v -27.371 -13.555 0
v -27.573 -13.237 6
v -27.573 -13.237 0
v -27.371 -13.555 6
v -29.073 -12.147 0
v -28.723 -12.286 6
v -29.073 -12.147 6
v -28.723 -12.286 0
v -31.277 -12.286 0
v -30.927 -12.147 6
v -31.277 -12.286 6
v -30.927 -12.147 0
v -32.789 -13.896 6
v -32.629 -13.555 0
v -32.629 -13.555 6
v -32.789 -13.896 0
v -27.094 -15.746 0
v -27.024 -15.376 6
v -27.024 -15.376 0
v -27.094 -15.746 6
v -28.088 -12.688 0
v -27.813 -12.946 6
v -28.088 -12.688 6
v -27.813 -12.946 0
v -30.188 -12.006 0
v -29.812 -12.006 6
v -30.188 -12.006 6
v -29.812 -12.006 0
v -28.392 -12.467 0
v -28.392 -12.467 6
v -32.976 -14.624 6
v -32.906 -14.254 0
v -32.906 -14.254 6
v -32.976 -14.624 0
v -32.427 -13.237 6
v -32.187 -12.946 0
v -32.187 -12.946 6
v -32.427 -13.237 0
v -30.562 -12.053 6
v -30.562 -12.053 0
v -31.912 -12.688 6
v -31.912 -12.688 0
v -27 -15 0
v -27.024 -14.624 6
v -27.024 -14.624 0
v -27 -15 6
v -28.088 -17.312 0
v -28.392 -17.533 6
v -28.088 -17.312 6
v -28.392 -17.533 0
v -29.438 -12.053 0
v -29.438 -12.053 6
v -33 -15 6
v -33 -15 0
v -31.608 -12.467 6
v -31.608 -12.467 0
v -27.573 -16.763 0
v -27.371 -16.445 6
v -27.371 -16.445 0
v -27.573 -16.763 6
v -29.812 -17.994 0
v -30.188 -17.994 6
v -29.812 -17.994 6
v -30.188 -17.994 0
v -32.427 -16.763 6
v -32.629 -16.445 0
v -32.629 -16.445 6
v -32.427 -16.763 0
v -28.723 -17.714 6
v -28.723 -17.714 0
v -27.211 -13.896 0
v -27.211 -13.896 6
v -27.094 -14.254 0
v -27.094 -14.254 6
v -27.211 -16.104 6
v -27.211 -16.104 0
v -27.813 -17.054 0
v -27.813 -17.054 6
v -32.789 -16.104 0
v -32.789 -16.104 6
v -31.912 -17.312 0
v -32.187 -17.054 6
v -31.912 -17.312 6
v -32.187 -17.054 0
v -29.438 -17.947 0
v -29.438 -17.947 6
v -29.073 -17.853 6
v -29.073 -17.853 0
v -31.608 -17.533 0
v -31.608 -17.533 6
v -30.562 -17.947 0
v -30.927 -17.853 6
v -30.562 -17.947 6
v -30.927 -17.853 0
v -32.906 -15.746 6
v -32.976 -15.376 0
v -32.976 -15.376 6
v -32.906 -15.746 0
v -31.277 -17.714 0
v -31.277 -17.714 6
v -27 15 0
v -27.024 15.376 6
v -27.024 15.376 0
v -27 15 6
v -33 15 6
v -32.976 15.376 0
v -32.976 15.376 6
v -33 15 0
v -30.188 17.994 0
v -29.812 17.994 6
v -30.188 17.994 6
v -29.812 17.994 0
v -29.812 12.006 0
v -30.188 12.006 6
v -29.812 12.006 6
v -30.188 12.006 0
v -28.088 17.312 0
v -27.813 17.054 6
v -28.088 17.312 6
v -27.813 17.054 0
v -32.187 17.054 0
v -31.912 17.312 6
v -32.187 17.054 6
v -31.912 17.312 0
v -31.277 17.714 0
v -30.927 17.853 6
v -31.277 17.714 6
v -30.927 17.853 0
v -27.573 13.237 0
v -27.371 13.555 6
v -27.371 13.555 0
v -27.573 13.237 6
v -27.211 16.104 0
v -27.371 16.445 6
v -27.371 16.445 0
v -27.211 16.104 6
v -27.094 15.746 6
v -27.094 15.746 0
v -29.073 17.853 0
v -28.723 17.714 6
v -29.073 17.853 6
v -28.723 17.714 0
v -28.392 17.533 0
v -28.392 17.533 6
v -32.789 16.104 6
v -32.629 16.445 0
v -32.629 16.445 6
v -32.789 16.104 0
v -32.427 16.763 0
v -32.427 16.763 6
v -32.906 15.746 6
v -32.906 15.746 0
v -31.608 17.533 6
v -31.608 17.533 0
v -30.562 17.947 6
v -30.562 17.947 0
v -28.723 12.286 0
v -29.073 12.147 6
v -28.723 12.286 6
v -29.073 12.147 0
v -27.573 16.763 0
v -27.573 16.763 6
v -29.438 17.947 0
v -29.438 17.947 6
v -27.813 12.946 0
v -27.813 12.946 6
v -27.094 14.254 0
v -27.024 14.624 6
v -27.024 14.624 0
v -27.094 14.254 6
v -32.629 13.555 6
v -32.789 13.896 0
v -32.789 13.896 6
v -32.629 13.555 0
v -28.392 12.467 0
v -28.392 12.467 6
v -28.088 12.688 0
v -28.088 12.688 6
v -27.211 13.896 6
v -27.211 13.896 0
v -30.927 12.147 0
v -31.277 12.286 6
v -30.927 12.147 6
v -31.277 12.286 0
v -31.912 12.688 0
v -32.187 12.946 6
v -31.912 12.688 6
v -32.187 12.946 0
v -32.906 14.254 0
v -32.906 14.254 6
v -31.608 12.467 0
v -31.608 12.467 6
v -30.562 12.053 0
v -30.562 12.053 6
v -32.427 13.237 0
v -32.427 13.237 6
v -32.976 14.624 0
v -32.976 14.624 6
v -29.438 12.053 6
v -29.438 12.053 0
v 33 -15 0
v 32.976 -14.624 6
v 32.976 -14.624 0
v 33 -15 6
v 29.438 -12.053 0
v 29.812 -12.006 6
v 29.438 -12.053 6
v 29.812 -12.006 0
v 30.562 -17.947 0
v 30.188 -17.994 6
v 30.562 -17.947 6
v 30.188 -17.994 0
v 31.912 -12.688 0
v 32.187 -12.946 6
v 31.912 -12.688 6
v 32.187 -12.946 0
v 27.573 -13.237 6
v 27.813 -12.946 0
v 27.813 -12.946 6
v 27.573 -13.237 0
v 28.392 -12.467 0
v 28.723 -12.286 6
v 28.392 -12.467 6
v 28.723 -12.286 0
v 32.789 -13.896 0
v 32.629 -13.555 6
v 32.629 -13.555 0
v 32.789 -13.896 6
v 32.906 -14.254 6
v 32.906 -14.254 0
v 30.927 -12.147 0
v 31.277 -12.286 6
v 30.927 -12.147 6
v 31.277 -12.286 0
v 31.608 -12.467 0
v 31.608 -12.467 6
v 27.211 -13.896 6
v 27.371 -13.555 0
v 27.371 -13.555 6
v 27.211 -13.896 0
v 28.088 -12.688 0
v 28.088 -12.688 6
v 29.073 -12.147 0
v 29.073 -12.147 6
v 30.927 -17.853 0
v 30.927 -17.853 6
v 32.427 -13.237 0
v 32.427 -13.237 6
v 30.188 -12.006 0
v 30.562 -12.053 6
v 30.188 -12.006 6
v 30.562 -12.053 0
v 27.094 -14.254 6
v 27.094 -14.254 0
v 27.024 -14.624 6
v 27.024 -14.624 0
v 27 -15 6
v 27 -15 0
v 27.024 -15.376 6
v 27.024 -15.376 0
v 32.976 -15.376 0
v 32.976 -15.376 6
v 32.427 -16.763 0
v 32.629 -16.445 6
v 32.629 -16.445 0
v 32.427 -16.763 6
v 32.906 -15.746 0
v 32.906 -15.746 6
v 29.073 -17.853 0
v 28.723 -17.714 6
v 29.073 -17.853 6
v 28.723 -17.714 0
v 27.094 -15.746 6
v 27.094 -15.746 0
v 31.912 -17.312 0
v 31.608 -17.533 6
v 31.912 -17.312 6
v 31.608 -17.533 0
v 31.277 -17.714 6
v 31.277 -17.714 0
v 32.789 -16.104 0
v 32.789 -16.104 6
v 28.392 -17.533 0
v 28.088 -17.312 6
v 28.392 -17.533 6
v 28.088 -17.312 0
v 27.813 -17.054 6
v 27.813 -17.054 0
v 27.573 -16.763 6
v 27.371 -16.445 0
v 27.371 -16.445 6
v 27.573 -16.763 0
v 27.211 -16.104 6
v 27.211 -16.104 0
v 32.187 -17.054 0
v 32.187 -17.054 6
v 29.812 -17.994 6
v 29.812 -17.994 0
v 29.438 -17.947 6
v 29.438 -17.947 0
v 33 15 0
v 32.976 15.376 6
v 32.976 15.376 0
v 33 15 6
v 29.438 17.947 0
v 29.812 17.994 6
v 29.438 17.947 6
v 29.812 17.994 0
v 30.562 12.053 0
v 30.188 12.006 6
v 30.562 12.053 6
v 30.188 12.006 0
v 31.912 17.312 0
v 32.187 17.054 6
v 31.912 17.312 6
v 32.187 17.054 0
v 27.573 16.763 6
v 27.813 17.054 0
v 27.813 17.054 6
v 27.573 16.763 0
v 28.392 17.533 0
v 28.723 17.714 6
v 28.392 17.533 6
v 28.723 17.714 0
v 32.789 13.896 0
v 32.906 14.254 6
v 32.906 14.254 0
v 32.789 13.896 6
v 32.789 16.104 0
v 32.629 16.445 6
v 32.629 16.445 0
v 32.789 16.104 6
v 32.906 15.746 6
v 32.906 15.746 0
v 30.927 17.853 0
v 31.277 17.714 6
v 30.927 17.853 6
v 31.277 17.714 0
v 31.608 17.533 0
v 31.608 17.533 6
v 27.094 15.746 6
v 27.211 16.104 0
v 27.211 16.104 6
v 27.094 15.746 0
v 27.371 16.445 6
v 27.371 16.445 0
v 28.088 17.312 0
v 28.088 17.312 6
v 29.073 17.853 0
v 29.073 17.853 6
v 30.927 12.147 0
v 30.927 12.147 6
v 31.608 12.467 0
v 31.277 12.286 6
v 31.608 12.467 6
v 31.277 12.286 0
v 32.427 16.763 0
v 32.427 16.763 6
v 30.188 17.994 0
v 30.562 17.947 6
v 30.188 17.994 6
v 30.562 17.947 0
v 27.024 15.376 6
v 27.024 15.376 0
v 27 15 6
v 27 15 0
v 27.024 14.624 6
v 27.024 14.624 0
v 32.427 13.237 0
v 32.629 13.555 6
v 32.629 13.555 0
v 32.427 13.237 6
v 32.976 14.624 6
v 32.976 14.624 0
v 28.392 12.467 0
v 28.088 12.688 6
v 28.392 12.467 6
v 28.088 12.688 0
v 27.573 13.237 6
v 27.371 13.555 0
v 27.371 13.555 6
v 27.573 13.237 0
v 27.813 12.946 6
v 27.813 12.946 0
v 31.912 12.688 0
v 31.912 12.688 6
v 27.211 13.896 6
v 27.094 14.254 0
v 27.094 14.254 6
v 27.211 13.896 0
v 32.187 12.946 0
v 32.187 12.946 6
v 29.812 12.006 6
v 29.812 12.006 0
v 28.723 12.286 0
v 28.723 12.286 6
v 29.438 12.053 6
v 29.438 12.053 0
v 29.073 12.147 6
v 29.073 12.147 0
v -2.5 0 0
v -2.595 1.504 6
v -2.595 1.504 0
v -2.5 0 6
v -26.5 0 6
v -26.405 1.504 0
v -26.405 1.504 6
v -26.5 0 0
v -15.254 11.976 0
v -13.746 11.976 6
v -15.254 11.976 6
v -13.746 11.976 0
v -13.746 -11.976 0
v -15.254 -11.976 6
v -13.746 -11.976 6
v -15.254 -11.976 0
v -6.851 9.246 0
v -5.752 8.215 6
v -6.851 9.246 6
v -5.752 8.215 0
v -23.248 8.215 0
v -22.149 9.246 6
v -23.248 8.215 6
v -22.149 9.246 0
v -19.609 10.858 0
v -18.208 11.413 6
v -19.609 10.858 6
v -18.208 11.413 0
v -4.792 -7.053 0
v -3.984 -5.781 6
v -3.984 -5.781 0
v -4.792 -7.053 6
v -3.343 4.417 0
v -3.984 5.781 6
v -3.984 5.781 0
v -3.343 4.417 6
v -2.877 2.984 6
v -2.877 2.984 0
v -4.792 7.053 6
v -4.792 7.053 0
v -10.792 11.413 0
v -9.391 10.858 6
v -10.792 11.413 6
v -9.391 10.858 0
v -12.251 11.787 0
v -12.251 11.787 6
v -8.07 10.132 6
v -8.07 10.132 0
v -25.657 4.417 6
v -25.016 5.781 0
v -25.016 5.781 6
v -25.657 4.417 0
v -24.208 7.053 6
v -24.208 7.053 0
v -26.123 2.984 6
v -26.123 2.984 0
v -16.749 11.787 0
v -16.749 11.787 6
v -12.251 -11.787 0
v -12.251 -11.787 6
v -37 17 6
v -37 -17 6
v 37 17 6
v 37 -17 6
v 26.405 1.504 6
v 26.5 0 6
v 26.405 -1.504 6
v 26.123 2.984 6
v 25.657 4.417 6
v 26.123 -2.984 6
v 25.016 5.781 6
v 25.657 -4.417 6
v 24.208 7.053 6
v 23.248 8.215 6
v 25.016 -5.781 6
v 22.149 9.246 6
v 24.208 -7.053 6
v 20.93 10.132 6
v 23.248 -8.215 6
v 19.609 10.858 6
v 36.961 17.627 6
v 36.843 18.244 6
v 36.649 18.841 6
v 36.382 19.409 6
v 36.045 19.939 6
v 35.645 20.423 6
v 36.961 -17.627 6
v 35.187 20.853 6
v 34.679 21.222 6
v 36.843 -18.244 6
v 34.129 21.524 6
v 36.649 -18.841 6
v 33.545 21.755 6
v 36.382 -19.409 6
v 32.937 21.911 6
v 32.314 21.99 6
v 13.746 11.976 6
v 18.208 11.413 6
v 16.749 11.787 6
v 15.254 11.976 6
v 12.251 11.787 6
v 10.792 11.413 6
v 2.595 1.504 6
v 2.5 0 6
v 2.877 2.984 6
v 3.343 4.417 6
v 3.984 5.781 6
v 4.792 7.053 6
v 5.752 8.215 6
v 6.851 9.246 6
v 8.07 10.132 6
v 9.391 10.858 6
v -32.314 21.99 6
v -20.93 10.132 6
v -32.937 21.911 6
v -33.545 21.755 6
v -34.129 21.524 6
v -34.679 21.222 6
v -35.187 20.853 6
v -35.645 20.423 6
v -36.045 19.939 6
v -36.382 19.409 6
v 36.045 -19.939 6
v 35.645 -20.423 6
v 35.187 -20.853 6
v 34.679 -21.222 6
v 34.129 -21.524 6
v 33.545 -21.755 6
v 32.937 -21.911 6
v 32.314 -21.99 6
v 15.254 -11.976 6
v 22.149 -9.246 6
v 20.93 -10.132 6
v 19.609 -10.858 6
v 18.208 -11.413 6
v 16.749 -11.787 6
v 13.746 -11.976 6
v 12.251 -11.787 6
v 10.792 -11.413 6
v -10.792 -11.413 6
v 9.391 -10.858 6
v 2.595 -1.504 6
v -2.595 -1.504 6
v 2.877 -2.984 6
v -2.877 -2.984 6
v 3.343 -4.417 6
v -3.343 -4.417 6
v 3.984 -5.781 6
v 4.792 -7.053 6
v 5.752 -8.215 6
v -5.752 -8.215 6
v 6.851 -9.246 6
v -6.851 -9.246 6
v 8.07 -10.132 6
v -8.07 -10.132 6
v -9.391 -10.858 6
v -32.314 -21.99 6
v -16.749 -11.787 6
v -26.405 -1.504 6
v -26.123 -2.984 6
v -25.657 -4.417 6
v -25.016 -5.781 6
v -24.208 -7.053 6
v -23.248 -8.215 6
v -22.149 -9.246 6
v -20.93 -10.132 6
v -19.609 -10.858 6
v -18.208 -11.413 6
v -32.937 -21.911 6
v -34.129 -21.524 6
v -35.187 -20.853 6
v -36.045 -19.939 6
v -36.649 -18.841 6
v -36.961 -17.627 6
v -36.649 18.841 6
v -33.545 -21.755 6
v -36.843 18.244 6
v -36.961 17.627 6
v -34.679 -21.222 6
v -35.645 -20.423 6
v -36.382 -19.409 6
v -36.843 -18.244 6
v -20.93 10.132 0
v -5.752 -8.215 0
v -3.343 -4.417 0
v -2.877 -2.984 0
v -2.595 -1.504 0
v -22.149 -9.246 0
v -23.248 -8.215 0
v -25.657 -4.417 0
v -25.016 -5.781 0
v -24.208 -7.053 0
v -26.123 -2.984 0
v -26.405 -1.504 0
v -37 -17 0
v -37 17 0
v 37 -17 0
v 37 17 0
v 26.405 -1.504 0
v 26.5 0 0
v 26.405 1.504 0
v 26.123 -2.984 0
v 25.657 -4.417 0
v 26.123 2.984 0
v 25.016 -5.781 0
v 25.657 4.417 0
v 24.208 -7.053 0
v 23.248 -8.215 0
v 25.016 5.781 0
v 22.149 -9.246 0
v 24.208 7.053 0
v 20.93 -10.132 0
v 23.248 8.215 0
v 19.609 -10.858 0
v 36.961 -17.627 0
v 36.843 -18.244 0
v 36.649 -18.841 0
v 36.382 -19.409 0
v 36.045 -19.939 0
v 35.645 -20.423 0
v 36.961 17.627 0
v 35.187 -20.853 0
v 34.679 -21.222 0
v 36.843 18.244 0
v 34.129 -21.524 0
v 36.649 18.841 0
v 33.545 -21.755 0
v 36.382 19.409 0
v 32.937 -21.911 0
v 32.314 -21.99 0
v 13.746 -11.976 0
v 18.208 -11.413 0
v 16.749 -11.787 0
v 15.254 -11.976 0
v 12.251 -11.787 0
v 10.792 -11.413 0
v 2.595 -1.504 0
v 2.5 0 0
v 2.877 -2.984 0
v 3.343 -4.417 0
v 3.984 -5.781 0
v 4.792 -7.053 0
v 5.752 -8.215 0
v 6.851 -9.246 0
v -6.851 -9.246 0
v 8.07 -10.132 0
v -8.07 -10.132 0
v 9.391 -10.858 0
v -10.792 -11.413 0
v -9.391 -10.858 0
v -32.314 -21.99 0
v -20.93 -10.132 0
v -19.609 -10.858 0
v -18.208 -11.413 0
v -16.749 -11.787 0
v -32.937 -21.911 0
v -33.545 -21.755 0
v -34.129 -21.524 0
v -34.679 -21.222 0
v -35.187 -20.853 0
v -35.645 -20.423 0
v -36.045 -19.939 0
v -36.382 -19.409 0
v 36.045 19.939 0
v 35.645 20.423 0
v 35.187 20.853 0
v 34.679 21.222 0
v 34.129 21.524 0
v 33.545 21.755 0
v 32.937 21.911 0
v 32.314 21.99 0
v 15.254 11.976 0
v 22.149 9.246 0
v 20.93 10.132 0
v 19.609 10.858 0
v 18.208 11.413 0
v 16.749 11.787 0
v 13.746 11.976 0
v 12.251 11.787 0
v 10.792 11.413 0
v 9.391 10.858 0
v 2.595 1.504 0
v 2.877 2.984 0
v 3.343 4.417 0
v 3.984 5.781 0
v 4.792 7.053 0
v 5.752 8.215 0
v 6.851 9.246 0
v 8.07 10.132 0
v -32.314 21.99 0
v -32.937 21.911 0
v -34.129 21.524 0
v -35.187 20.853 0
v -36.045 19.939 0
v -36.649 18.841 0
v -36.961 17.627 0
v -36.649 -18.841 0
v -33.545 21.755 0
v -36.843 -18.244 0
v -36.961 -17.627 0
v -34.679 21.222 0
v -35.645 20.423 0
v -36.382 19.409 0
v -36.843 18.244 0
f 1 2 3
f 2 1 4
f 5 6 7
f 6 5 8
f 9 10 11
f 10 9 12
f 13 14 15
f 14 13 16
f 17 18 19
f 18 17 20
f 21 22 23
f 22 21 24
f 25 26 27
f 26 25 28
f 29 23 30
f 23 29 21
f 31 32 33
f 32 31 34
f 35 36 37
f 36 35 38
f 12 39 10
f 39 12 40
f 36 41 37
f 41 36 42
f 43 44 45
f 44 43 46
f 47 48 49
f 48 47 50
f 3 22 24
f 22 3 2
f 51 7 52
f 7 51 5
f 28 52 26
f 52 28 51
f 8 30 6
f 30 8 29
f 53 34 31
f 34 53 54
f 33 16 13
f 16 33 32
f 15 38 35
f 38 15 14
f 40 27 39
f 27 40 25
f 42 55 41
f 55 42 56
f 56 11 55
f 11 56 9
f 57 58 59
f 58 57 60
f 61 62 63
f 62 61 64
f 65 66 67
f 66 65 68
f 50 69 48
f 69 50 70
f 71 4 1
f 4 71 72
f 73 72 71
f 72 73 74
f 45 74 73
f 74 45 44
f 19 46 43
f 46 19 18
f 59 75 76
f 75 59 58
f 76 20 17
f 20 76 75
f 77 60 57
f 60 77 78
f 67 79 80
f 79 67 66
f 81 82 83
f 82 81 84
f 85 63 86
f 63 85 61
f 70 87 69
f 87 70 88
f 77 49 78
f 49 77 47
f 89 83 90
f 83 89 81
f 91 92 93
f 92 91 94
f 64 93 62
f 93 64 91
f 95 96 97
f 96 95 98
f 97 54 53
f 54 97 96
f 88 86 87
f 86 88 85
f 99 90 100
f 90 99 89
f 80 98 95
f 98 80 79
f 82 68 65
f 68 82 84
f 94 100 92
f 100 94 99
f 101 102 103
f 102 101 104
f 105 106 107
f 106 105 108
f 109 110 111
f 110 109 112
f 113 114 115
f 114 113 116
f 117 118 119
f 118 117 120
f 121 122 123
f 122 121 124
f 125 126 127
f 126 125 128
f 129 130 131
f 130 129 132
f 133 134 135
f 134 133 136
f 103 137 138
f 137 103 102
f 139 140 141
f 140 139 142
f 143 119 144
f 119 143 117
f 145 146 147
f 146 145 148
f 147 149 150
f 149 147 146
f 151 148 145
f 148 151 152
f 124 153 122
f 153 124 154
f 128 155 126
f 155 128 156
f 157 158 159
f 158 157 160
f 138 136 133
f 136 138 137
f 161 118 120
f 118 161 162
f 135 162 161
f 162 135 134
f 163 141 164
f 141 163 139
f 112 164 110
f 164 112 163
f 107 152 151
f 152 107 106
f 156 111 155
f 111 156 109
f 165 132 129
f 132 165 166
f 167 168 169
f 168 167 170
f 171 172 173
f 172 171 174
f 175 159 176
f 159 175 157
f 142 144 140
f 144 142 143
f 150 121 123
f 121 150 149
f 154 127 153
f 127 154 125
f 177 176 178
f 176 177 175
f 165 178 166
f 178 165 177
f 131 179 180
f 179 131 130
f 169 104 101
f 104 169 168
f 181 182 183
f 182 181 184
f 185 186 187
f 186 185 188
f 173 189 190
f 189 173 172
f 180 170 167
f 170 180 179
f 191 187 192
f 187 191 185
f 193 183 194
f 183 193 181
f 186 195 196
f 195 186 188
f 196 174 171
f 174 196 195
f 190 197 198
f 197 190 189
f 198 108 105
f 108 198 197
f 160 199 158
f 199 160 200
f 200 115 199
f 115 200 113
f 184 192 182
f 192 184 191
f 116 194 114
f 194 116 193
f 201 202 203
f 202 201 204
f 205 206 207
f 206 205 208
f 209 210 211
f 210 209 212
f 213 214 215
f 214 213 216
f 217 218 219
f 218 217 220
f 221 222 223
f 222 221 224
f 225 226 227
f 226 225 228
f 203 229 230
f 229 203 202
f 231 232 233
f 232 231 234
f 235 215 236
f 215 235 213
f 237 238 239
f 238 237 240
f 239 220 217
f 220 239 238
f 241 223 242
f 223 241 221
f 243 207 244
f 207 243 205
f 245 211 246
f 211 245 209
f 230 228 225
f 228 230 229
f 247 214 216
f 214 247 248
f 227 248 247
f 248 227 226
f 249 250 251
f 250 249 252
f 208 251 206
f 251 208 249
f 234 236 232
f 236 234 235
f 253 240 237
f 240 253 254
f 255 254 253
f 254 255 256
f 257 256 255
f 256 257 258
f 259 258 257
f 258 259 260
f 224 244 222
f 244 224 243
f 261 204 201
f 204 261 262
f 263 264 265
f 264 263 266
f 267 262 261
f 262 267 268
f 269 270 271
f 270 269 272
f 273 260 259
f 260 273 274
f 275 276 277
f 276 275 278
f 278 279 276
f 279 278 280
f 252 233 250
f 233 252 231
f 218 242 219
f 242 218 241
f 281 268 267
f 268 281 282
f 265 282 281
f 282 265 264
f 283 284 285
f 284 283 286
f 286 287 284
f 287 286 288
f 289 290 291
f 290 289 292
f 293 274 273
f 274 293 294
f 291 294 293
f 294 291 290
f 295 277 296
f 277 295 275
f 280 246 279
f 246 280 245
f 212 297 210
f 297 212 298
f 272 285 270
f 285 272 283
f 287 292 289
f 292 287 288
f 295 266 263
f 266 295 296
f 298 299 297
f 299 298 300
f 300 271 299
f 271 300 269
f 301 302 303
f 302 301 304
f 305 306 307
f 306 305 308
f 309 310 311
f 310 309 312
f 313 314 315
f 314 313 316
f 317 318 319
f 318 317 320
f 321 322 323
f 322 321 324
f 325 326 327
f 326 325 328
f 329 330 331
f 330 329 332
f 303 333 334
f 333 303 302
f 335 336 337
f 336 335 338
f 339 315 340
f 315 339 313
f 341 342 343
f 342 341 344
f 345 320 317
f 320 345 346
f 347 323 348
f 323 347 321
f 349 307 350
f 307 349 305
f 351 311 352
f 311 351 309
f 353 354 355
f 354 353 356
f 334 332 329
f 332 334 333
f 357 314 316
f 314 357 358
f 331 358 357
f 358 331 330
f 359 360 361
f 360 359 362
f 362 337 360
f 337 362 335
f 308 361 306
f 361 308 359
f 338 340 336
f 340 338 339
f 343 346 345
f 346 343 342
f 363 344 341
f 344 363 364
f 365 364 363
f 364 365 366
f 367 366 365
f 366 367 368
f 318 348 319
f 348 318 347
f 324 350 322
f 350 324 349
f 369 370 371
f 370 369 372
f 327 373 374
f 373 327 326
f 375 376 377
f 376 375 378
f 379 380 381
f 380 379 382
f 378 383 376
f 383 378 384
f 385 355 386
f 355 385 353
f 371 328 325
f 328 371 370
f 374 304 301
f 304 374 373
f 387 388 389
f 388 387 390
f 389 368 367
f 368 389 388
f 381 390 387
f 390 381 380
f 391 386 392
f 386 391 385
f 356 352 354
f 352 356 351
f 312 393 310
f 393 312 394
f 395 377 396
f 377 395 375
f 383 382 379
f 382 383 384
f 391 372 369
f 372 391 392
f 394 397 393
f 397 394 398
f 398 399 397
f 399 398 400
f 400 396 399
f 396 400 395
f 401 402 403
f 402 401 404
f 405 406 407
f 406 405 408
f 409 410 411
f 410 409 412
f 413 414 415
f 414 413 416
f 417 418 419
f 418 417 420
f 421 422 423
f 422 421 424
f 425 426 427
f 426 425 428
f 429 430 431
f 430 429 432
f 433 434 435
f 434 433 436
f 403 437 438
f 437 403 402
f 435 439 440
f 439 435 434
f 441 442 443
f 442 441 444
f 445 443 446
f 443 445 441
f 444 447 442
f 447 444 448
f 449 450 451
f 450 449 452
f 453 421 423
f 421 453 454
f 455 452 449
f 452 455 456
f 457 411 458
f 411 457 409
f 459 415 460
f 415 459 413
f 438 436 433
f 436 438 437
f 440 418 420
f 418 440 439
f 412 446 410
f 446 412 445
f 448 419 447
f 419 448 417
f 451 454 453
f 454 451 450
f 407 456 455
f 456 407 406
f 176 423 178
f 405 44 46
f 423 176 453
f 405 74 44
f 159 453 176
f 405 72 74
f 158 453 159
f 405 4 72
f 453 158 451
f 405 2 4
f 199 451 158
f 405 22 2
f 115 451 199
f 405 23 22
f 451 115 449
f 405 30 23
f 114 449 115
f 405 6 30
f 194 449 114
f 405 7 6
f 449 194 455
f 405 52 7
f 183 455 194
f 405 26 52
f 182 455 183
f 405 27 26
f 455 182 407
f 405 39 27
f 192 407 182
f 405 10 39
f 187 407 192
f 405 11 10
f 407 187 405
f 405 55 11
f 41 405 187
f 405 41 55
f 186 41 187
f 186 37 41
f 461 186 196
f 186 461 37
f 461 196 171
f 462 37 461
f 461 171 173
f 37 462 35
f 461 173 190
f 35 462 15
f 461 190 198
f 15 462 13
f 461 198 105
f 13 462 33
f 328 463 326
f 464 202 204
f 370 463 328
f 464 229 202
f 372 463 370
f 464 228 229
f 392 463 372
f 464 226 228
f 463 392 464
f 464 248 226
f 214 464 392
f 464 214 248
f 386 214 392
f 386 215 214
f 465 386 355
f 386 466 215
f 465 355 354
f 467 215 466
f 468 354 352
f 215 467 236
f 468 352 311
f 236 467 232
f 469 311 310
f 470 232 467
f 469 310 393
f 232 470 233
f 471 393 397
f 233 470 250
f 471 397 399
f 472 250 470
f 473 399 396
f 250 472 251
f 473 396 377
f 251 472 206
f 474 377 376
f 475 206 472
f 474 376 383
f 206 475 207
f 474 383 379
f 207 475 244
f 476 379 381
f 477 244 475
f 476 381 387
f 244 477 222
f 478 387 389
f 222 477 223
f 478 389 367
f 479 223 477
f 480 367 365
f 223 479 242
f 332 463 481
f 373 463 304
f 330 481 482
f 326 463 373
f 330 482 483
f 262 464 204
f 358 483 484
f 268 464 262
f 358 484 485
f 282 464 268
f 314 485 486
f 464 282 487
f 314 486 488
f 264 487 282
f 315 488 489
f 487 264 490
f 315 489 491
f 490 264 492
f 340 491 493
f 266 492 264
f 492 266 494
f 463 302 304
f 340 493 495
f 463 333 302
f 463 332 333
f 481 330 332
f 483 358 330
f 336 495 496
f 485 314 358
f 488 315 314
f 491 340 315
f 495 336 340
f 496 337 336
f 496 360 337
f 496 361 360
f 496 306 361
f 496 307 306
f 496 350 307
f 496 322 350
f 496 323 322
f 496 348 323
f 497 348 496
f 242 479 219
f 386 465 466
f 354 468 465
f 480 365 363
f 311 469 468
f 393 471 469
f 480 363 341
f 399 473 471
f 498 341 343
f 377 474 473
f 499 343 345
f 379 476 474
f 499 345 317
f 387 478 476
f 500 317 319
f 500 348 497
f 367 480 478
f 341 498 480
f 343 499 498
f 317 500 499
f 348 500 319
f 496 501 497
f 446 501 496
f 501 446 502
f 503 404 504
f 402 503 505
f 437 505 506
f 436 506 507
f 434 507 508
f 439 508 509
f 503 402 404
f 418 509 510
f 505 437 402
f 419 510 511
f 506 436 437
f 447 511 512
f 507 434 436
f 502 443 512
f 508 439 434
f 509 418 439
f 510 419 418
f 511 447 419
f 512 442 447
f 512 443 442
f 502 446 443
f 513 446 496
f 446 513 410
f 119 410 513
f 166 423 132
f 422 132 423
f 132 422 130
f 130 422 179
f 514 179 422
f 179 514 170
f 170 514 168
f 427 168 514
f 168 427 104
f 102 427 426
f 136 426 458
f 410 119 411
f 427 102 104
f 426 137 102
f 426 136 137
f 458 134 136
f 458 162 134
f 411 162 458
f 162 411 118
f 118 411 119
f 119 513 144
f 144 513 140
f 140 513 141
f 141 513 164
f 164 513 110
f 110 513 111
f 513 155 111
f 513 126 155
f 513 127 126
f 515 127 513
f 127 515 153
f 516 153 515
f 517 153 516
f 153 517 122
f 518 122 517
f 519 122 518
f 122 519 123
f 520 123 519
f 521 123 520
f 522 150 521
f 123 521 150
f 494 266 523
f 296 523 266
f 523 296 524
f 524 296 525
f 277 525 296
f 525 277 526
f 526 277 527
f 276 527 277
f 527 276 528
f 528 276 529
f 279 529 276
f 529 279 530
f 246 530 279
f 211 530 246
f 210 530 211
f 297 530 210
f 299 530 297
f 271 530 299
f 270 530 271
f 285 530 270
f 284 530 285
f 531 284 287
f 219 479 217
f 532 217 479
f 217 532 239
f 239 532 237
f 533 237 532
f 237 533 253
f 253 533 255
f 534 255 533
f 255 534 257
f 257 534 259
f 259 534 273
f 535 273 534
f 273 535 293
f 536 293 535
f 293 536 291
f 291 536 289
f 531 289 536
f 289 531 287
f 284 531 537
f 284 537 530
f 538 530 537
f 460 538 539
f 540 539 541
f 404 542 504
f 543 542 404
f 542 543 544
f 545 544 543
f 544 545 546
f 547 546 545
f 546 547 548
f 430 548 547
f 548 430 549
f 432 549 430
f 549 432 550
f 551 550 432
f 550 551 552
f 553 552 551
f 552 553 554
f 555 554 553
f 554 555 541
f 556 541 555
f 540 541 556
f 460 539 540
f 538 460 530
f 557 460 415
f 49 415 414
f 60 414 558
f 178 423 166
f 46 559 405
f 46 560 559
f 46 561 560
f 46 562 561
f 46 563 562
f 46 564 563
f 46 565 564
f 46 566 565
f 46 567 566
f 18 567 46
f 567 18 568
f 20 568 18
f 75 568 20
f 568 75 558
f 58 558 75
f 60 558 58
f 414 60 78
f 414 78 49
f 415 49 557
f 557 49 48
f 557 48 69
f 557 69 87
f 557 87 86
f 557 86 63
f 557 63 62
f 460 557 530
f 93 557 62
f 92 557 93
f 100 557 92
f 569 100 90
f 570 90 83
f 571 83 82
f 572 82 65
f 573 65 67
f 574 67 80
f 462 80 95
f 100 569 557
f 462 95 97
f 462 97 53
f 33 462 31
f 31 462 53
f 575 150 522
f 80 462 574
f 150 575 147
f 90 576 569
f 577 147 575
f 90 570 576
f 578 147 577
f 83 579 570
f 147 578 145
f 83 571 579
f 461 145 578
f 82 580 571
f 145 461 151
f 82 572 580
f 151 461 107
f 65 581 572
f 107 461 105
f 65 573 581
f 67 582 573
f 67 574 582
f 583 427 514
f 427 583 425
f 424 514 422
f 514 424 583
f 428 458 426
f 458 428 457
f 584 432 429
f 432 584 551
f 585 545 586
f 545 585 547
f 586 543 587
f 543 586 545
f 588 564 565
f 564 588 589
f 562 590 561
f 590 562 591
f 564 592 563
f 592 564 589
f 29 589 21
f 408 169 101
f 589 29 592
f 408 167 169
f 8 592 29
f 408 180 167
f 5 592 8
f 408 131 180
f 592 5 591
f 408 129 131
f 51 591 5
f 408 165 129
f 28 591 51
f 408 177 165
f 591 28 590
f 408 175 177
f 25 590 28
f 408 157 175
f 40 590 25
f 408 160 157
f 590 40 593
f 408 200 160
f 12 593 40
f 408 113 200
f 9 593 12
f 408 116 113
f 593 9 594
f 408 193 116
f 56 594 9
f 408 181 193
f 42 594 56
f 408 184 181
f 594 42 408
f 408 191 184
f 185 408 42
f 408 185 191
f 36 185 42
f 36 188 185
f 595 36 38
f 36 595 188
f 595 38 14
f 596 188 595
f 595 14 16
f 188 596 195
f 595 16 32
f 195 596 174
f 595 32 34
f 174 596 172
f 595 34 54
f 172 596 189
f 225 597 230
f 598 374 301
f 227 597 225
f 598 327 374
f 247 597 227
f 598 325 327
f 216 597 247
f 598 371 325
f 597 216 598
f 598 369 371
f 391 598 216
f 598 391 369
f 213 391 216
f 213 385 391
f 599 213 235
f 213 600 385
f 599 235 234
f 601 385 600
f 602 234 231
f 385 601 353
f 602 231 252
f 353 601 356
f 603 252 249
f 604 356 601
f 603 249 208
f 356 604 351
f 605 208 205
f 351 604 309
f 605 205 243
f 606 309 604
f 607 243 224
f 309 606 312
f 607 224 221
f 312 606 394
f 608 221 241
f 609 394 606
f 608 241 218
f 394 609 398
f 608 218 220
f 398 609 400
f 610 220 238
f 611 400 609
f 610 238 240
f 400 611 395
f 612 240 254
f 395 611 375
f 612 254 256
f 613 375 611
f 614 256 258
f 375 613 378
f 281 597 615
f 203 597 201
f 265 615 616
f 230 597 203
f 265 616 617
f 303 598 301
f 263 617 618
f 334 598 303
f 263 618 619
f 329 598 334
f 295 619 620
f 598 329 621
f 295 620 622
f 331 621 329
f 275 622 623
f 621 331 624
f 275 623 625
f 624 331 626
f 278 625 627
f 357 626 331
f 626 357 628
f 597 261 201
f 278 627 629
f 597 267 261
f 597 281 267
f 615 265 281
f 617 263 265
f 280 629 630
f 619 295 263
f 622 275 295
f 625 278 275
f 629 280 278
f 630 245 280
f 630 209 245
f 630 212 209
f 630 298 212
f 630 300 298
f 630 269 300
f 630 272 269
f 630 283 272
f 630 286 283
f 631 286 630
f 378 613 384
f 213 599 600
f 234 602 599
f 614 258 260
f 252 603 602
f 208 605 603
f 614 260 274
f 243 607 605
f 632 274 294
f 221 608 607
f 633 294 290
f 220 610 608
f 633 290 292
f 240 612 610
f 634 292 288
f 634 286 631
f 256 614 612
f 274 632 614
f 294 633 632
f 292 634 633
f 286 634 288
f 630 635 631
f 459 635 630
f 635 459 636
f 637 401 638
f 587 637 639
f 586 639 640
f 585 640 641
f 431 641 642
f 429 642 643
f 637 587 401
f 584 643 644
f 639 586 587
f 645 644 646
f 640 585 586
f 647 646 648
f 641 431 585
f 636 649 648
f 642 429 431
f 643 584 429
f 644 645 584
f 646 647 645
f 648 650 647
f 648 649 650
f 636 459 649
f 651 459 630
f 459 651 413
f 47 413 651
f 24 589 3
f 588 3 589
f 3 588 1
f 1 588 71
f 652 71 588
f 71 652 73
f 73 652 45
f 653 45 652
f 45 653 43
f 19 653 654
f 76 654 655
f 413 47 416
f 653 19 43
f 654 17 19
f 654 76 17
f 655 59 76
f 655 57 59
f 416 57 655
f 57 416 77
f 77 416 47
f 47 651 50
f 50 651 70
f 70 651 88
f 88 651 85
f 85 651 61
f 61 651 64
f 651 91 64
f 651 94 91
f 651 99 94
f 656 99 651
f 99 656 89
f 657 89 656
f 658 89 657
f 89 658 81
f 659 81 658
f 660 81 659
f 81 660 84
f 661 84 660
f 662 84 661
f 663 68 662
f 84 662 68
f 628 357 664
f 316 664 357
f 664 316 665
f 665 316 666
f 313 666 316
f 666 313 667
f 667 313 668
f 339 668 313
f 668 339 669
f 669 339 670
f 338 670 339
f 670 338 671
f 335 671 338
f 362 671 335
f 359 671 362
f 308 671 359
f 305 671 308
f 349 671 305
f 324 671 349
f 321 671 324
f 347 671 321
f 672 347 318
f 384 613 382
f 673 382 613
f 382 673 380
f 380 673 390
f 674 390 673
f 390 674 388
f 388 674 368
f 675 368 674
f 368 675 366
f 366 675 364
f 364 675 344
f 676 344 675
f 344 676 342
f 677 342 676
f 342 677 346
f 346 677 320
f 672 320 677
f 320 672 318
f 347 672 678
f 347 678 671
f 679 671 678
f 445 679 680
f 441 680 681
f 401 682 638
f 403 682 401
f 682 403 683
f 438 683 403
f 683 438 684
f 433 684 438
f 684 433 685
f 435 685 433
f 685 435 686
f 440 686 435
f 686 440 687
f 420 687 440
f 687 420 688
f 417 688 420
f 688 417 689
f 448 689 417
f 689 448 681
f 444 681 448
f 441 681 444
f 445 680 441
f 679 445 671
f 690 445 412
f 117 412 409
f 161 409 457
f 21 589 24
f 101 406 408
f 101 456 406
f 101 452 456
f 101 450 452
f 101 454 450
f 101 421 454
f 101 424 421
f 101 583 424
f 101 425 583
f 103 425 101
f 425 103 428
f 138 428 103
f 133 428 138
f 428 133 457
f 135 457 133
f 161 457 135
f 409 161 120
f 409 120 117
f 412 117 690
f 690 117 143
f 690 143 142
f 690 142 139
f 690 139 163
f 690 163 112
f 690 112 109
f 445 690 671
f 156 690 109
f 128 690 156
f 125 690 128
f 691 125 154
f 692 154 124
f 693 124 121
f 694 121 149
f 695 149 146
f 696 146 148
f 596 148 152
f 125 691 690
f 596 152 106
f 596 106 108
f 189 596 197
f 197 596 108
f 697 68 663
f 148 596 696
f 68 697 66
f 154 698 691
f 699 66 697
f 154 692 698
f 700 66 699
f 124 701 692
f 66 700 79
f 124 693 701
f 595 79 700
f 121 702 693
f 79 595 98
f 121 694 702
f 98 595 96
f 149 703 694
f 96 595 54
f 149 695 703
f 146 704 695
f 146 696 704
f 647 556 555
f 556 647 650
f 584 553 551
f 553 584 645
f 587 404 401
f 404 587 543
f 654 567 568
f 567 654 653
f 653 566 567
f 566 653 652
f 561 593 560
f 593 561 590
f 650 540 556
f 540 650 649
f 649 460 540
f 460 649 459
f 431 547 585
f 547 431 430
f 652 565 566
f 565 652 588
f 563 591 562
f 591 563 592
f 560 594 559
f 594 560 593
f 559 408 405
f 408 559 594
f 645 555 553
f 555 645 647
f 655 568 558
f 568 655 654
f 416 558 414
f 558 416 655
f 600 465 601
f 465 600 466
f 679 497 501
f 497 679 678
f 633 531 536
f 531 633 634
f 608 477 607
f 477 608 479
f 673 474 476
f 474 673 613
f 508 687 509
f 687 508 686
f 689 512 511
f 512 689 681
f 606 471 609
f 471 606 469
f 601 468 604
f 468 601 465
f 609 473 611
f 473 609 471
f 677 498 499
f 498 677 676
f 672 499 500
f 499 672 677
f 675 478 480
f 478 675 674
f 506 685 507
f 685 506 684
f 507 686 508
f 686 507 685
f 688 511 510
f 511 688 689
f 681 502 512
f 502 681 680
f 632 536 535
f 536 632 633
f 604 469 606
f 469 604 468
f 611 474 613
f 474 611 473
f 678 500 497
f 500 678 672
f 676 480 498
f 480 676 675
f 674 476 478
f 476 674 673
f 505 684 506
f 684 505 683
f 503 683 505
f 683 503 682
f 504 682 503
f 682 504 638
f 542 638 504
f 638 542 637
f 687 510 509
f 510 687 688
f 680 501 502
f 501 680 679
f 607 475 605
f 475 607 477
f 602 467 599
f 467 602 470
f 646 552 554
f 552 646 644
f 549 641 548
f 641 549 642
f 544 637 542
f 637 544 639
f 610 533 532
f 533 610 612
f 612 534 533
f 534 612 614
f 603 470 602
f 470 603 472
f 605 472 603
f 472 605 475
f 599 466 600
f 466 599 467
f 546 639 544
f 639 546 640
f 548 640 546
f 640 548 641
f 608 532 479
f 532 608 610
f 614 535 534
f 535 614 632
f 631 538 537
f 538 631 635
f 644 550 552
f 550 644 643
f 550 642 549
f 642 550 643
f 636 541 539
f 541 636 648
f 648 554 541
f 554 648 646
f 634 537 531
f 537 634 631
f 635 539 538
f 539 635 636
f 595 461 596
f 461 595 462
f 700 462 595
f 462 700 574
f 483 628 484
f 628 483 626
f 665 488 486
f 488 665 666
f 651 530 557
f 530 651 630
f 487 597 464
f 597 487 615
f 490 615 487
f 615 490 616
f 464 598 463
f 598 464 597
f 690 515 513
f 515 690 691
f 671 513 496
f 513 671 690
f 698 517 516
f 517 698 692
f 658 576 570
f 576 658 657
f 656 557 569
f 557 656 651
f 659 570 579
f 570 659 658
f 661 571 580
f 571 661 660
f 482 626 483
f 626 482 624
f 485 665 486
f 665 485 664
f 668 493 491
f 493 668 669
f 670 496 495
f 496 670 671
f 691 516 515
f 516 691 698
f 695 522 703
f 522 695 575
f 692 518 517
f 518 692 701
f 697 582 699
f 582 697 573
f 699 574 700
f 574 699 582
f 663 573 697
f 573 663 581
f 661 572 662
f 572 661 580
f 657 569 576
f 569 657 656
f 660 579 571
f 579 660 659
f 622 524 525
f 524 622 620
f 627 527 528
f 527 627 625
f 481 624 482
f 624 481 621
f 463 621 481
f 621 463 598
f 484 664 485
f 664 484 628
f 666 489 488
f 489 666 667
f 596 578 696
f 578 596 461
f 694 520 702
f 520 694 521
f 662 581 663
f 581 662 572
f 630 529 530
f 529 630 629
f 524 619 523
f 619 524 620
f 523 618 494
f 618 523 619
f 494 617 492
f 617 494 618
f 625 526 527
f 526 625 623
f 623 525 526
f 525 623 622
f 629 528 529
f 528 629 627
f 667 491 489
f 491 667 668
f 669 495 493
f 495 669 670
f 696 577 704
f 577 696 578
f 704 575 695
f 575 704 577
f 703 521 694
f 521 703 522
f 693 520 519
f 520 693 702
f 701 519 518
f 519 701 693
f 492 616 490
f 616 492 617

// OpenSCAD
$fn = 50;


difference() {
	union() {
		hull() {
			translate(v = [-32.0000000000, 17.0000000000, 0]) {
				cylinder(h = 6, r = 5);
			}
			translate(v = [32.0000000000, 17.0000000000, 0]) {
				cylinder(h = 6, r = 5);
			}
			translate(v = [-32.0000000000, -17.0000000000, 0]) {
				cylinder(h = 6, r = 5);
			}
			translate(v = [32.0000000000, -17.0000000000, 0]) {
				cylinder(h = 6, r = 5);
			}
		}
	}
	union() {
		#translate(v = [-30.0000000000, -15.0000000000, -100.0000000000]) {
			cylinder(h = 200, r = 3.0000000000);
		}
		#translate(v = [-30.0000000000, 15.0000000000, -100.0000000000]) {
			cylinder(h = 200, r = 3.0000000000);
		}
		#translate(v = [30.0000000000, -15.0000000000, -100.0000000000]) {
			cylinder(h = 200, r = 3.0000000000);
		}
		#translate(v = [30.0000000000, 15.0000000000, -100.0000000000]) {
			cylinder(h = 200, r = 3.0000000000);
		}
		#translate(v = [-14.5000000000, 0, 0]) {
			cylinder(h = 6, r = 12.0000000000);
		}
		#translate(v = [14.5000000000, 0, 0]) {
			cylinder(h = 6, r = 12.0000000000);
		}
	}
}
